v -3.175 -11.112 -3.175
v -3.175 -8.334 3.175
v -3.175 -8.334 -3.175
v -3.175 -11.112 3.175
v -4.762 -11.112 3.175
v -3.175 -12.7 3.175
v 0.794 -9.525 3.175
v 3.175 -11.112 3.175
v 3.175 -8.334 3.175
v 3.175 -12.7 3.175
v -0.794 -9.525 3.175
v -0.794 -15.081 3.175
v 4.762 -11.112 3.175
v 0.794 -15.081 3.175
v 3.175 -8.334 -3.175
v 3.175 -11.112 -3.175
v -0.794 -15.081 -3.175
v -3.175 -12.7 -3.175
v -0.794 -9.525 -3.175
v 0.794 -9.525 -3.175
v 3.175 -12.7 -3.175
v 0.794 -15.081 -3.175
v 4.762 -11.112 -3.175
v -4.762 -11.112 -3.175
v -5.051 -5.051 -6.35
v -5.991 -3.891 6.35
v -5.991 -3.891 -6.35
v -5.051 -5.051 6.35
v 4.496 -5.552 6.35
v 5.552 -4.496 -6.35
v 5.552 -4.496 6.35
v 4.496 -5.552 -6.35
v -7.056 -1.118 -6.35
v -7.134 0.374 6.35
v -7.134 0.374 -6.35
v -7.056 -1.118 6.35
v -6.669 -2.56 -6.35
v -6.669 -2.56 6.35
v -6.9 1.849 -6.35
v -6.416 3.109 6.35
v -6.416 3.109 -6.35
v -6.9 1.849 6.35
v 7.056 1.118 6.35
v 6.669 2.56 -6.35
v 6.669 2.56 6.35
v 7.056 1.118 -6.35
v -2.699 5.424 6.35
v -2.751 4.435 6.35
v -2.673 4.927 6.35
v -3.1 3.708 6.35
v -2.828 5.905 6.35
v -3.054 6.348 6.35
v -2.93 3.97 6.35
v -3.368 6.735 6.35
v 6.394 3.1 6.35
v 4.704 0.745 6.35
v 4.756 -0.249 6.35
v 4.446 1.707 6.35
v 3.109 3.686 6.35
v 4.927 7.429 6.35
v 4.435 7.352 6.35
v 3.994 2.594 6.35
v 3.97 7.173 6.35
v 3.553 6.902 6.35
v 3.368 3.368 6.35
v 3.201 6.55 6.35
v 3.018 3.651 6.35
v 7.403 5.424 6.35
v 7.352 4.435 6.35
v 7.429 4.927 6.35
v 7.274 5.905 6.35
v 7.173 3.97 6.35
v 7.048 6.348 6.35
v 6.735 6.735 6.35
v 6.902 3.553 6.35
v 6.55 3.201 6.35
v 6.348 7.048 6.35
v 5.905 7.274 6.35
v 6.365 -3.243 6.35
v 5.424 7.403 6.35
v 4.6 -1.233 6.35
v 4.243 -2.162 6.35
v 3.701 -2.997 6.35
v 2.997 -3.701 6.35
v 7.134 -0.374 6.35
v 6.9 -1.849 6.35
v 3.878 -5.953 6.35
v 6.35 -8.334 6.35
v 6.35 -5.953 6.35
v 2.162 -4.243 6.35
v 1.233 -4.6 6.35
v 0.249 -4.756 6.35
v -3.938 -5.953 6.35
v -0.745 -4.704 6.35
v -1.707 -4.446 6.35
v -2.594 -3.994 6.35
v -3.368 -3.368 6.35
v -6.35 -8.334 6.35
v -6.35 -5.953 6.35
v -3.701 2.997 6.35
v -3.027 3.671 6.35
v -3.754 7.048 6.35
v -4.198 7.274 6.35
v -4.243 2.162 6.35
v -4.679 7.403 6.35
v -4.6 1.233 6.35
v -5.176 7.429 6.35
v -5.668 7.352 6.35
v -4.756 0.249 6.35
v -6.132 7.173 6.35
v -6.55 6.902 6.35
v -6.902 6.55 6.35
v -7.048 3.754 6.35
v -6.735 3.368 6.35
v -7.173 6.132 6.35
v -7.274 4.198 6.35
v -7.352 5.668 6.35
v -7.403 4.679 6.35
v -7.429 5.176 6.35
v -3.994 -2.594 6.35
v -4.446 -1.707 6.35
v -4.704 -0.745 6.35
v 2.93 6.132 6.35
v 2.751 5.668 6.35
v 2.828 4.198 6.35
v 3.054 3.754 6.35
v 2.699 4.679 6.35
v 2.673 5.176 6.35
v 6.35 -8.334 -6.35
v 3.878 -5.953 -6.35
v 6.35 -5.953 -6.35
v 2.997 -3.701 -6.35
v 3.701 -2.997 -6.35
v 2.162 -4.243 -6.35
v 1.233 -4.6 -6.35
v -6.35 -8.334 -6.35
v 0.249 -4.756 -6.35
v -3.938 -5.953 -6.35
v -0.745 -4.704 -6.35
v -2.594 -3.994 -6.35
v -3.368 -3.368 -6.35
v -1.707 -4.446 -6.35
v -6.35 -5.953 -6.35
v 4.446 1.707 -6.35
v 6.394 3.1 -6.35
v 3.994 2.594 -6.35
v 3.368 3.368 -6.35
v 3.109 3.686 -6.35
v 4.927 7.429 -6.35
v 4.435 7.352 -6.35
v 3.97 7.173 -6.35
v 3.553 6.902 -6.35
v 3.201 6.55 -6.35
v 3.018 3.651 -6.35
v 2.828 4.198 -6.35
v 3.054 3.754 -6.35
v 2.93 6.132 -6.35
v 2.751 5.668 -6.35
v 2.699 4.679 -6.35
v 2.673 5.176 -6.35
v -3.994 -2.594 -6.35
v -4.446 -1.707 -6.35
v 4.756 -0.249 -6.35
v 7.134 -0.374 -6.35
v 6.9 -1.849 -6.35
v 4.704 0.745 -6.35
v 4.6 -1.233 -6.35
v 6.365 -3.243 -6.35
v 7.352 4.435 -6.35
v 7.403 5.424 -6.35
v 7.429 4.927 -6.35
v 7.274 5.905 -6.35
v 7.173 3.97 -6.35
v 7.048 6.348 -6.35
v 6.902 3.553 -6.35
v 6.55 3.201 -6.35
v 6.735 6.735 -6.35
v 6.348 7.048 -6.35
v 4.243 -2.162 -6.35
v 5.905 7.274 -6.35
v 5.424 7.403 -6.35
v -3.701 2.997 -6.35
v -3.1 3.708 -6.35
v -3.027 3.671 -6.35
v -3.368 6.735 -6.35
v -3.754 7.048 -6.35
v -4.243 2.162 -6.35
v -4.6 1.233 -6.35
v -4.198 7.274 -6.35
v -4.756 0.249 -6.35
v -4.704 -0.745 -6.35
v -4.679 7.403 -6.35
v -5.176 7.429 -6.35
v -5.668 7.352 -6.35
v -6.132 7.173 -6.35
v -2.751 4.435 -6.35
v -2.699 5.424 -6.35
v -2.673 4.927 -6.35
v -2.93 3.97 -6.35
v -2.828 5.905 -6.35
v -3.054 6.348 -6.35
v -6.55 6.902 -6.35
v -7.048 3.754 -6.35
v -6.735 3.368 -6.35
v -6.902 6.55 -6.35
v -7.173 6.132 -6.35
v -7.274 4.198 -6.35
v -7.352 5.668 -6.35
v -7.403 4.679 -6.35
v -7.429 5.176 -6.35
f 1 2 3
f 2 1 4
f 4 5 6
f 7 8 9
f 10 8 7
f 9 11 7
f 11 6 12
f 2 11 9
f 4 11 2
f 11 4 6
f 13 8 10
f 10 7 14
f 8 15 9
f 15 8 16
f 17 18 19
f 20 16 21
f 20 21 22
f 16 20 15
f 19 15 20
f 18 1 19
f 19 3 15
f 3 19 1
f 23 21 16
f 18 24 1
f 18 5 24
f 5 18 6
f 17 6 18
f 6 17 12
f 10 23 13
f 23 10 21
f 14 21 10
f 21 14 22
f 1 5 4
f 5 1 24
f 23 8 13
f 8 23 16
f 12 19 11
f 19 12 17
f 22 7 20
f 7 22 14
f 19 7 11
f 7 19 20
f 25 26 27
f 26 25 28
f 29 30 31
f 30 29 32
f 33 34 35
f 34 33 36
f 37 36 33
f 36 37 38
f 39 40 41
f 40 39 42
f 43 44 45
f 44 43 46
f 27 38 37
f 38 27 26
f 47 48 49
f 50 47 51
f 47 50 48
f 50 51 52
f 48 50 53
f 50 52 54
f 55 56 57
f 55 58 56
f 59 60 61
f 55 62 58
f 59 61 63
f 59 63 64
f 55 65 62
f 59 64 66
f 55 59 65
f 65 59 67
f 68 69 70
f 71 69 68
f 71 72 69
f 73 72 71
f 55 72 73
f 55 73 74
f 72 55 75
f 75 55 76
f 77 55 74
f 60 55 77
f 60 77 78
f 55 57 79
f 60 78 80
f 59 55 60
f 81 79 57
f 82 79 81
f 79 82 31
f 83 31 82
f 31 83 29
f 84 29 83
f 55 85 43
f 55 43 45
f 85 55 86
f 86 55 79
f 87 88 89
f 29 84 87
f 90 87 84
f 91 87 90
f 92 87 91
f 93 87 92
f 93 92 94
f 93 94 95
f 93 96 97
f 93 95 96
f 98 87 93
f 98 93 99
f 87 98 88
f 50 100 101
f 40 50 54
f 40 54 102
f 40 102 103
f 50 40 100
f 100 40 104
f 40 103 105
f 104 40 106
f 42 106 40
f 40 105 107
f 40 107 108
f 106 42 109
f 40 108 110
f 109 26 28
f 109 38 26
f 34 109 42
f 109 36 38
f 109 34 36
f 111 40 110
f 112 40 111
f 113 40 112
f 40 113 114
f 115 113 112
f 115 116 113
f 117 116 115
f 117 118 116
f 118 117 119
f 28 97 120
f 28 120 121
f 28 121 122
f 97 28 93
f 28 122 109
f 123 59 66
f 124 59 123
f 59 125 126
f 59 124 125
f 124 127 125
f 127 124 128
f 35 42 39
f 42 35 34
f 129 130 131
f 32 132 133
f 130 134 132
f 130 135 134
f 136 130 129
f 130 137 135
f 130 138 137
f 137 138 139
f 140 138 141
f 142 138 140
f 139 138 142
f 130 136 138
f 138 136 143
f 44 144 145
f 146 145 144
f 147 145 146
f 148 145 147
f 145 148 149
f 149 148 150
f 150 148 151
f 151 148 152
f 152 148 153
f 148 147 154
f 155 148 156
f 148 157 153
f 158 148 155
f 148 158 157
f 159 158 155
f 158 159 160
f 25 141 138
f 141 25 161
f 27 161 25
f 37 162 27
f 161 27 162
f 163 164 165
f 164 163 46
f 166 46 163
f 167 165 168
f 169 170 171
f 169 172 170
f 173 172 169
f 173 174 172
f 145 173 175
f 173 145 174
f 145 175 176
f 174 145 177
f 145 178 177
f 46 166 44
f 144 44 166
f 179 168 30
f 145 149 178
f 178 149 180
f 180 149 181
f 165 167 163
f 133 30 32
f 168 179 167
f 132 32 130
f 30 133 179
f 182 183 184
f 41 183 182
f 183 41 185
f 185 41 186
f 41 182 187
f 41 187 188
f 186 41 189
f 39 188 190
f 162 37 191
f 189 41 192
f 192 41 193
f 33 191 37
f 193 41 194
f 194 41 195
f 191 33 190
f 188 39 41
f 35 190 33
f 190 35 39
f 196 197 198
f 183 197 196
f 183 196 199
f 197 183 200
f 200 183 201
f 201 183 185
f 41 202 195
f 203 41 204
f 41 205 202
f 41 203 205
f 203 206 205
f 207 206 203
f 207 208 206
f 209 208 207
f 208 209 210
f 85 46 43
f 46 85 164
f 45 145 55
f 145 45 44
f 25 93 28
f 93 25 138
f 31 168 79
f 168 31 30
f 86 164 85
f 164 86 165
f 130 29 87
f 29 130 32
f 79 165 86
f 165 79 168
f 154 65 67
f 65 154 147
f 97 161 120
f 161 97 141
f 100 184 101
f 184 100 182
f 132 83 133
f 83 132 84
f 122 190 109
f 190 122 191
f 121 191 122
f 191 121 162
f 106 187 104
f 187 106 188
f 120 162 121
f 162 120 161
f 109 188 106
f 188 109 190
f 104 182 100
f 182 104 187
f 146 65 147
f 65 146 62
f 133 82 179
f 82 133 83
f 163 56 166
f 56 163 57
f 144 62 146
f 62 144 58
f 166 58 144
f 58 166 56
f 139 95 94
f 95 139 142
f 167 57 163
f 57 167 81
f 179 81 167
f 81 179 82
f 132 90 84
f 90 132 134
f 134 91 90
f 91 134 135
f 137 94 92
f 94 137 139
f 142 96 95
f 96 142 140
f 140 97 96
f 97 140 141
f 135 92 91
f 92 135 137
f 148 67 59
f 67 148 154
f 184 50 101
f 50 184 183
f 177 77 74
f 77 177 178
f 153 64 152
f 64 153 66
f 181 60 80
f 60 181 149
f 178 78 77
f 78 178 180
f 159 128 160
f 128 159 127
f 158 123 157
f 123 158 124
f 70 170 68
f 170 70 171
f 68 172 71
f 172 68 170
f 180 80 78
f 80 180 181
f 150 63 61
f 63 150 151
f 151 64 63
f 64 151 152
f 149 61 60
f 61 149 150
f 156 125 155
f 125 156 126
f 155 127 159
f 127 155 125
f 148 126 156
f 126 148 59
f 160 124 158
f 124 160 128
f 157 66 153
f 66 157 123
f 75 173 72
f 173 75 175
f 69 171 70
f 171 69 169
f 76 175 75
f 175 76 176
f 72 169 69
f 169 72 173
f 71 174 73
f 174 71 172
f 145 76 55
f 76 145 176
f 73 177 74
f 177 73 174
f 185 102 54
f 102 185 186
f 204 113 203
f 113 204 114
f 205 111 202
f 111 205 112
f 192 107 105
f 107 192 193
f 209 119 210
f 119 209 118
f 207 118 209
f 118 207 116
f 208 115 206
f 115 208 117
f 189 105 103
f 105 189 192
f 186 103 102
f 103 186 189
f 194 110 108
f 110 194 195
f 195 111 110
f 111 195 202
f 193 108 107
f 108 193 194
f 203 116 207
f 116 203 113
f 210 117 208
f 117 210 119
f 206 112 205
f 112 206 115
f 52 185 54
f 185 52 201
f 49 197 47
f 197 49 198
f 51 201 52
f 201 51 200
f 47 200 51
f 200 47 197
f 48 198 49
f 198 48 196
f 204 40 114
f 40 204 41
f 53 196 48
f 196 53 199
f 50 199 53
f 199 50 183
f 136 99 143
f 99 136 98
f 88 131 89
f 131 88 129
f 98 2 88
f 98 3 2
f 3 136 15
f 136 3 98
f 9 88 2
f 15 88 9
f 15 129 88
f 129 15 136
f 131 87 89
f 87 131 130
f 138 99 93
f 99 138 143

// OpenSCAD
in=25.4;
id=in*3/8;
wall=in*3/16;
od=id+wall;
h=in*1/2;

pin=in*1/4;
clip=1.5*pin/2;

$fn=30;

union() {
    rotate([0,0,45])
        union() {
            difference() {
                cylinder(d=od, h=h, center=true);
                cylinder(d=id, h=h, center=true);
                translate([od/2, od/2, 0]) cylinder(d=od, h=h, center=true);
            }
            
            translate([od/2, 0, 0]) cylinder(d=wall,h=h, center=true);
            translate([0, od/2, 0]) cylinder(d=wall,h=h, center=true);
        }
    
    plate=wall/2;
    translate([0, -od/2, 0]) {
        cube([h, plate, h], center=true);
    }
    
    #translate([0, -od/2-plate]) {
        difference() {
            union() {
                cube(pin, center=true);
                translate([0, 0, -pin/2]) linear_extrude(height=pin) polygon(points=[[-clip, -pin/4], [clip, -pin/4], [0, -pin], [-clip, -pin/4]]);
            }
            translate([-pin/8, -pin, -pin/2]) cube([pin/4, pin, pin]);
        }
    }
}
